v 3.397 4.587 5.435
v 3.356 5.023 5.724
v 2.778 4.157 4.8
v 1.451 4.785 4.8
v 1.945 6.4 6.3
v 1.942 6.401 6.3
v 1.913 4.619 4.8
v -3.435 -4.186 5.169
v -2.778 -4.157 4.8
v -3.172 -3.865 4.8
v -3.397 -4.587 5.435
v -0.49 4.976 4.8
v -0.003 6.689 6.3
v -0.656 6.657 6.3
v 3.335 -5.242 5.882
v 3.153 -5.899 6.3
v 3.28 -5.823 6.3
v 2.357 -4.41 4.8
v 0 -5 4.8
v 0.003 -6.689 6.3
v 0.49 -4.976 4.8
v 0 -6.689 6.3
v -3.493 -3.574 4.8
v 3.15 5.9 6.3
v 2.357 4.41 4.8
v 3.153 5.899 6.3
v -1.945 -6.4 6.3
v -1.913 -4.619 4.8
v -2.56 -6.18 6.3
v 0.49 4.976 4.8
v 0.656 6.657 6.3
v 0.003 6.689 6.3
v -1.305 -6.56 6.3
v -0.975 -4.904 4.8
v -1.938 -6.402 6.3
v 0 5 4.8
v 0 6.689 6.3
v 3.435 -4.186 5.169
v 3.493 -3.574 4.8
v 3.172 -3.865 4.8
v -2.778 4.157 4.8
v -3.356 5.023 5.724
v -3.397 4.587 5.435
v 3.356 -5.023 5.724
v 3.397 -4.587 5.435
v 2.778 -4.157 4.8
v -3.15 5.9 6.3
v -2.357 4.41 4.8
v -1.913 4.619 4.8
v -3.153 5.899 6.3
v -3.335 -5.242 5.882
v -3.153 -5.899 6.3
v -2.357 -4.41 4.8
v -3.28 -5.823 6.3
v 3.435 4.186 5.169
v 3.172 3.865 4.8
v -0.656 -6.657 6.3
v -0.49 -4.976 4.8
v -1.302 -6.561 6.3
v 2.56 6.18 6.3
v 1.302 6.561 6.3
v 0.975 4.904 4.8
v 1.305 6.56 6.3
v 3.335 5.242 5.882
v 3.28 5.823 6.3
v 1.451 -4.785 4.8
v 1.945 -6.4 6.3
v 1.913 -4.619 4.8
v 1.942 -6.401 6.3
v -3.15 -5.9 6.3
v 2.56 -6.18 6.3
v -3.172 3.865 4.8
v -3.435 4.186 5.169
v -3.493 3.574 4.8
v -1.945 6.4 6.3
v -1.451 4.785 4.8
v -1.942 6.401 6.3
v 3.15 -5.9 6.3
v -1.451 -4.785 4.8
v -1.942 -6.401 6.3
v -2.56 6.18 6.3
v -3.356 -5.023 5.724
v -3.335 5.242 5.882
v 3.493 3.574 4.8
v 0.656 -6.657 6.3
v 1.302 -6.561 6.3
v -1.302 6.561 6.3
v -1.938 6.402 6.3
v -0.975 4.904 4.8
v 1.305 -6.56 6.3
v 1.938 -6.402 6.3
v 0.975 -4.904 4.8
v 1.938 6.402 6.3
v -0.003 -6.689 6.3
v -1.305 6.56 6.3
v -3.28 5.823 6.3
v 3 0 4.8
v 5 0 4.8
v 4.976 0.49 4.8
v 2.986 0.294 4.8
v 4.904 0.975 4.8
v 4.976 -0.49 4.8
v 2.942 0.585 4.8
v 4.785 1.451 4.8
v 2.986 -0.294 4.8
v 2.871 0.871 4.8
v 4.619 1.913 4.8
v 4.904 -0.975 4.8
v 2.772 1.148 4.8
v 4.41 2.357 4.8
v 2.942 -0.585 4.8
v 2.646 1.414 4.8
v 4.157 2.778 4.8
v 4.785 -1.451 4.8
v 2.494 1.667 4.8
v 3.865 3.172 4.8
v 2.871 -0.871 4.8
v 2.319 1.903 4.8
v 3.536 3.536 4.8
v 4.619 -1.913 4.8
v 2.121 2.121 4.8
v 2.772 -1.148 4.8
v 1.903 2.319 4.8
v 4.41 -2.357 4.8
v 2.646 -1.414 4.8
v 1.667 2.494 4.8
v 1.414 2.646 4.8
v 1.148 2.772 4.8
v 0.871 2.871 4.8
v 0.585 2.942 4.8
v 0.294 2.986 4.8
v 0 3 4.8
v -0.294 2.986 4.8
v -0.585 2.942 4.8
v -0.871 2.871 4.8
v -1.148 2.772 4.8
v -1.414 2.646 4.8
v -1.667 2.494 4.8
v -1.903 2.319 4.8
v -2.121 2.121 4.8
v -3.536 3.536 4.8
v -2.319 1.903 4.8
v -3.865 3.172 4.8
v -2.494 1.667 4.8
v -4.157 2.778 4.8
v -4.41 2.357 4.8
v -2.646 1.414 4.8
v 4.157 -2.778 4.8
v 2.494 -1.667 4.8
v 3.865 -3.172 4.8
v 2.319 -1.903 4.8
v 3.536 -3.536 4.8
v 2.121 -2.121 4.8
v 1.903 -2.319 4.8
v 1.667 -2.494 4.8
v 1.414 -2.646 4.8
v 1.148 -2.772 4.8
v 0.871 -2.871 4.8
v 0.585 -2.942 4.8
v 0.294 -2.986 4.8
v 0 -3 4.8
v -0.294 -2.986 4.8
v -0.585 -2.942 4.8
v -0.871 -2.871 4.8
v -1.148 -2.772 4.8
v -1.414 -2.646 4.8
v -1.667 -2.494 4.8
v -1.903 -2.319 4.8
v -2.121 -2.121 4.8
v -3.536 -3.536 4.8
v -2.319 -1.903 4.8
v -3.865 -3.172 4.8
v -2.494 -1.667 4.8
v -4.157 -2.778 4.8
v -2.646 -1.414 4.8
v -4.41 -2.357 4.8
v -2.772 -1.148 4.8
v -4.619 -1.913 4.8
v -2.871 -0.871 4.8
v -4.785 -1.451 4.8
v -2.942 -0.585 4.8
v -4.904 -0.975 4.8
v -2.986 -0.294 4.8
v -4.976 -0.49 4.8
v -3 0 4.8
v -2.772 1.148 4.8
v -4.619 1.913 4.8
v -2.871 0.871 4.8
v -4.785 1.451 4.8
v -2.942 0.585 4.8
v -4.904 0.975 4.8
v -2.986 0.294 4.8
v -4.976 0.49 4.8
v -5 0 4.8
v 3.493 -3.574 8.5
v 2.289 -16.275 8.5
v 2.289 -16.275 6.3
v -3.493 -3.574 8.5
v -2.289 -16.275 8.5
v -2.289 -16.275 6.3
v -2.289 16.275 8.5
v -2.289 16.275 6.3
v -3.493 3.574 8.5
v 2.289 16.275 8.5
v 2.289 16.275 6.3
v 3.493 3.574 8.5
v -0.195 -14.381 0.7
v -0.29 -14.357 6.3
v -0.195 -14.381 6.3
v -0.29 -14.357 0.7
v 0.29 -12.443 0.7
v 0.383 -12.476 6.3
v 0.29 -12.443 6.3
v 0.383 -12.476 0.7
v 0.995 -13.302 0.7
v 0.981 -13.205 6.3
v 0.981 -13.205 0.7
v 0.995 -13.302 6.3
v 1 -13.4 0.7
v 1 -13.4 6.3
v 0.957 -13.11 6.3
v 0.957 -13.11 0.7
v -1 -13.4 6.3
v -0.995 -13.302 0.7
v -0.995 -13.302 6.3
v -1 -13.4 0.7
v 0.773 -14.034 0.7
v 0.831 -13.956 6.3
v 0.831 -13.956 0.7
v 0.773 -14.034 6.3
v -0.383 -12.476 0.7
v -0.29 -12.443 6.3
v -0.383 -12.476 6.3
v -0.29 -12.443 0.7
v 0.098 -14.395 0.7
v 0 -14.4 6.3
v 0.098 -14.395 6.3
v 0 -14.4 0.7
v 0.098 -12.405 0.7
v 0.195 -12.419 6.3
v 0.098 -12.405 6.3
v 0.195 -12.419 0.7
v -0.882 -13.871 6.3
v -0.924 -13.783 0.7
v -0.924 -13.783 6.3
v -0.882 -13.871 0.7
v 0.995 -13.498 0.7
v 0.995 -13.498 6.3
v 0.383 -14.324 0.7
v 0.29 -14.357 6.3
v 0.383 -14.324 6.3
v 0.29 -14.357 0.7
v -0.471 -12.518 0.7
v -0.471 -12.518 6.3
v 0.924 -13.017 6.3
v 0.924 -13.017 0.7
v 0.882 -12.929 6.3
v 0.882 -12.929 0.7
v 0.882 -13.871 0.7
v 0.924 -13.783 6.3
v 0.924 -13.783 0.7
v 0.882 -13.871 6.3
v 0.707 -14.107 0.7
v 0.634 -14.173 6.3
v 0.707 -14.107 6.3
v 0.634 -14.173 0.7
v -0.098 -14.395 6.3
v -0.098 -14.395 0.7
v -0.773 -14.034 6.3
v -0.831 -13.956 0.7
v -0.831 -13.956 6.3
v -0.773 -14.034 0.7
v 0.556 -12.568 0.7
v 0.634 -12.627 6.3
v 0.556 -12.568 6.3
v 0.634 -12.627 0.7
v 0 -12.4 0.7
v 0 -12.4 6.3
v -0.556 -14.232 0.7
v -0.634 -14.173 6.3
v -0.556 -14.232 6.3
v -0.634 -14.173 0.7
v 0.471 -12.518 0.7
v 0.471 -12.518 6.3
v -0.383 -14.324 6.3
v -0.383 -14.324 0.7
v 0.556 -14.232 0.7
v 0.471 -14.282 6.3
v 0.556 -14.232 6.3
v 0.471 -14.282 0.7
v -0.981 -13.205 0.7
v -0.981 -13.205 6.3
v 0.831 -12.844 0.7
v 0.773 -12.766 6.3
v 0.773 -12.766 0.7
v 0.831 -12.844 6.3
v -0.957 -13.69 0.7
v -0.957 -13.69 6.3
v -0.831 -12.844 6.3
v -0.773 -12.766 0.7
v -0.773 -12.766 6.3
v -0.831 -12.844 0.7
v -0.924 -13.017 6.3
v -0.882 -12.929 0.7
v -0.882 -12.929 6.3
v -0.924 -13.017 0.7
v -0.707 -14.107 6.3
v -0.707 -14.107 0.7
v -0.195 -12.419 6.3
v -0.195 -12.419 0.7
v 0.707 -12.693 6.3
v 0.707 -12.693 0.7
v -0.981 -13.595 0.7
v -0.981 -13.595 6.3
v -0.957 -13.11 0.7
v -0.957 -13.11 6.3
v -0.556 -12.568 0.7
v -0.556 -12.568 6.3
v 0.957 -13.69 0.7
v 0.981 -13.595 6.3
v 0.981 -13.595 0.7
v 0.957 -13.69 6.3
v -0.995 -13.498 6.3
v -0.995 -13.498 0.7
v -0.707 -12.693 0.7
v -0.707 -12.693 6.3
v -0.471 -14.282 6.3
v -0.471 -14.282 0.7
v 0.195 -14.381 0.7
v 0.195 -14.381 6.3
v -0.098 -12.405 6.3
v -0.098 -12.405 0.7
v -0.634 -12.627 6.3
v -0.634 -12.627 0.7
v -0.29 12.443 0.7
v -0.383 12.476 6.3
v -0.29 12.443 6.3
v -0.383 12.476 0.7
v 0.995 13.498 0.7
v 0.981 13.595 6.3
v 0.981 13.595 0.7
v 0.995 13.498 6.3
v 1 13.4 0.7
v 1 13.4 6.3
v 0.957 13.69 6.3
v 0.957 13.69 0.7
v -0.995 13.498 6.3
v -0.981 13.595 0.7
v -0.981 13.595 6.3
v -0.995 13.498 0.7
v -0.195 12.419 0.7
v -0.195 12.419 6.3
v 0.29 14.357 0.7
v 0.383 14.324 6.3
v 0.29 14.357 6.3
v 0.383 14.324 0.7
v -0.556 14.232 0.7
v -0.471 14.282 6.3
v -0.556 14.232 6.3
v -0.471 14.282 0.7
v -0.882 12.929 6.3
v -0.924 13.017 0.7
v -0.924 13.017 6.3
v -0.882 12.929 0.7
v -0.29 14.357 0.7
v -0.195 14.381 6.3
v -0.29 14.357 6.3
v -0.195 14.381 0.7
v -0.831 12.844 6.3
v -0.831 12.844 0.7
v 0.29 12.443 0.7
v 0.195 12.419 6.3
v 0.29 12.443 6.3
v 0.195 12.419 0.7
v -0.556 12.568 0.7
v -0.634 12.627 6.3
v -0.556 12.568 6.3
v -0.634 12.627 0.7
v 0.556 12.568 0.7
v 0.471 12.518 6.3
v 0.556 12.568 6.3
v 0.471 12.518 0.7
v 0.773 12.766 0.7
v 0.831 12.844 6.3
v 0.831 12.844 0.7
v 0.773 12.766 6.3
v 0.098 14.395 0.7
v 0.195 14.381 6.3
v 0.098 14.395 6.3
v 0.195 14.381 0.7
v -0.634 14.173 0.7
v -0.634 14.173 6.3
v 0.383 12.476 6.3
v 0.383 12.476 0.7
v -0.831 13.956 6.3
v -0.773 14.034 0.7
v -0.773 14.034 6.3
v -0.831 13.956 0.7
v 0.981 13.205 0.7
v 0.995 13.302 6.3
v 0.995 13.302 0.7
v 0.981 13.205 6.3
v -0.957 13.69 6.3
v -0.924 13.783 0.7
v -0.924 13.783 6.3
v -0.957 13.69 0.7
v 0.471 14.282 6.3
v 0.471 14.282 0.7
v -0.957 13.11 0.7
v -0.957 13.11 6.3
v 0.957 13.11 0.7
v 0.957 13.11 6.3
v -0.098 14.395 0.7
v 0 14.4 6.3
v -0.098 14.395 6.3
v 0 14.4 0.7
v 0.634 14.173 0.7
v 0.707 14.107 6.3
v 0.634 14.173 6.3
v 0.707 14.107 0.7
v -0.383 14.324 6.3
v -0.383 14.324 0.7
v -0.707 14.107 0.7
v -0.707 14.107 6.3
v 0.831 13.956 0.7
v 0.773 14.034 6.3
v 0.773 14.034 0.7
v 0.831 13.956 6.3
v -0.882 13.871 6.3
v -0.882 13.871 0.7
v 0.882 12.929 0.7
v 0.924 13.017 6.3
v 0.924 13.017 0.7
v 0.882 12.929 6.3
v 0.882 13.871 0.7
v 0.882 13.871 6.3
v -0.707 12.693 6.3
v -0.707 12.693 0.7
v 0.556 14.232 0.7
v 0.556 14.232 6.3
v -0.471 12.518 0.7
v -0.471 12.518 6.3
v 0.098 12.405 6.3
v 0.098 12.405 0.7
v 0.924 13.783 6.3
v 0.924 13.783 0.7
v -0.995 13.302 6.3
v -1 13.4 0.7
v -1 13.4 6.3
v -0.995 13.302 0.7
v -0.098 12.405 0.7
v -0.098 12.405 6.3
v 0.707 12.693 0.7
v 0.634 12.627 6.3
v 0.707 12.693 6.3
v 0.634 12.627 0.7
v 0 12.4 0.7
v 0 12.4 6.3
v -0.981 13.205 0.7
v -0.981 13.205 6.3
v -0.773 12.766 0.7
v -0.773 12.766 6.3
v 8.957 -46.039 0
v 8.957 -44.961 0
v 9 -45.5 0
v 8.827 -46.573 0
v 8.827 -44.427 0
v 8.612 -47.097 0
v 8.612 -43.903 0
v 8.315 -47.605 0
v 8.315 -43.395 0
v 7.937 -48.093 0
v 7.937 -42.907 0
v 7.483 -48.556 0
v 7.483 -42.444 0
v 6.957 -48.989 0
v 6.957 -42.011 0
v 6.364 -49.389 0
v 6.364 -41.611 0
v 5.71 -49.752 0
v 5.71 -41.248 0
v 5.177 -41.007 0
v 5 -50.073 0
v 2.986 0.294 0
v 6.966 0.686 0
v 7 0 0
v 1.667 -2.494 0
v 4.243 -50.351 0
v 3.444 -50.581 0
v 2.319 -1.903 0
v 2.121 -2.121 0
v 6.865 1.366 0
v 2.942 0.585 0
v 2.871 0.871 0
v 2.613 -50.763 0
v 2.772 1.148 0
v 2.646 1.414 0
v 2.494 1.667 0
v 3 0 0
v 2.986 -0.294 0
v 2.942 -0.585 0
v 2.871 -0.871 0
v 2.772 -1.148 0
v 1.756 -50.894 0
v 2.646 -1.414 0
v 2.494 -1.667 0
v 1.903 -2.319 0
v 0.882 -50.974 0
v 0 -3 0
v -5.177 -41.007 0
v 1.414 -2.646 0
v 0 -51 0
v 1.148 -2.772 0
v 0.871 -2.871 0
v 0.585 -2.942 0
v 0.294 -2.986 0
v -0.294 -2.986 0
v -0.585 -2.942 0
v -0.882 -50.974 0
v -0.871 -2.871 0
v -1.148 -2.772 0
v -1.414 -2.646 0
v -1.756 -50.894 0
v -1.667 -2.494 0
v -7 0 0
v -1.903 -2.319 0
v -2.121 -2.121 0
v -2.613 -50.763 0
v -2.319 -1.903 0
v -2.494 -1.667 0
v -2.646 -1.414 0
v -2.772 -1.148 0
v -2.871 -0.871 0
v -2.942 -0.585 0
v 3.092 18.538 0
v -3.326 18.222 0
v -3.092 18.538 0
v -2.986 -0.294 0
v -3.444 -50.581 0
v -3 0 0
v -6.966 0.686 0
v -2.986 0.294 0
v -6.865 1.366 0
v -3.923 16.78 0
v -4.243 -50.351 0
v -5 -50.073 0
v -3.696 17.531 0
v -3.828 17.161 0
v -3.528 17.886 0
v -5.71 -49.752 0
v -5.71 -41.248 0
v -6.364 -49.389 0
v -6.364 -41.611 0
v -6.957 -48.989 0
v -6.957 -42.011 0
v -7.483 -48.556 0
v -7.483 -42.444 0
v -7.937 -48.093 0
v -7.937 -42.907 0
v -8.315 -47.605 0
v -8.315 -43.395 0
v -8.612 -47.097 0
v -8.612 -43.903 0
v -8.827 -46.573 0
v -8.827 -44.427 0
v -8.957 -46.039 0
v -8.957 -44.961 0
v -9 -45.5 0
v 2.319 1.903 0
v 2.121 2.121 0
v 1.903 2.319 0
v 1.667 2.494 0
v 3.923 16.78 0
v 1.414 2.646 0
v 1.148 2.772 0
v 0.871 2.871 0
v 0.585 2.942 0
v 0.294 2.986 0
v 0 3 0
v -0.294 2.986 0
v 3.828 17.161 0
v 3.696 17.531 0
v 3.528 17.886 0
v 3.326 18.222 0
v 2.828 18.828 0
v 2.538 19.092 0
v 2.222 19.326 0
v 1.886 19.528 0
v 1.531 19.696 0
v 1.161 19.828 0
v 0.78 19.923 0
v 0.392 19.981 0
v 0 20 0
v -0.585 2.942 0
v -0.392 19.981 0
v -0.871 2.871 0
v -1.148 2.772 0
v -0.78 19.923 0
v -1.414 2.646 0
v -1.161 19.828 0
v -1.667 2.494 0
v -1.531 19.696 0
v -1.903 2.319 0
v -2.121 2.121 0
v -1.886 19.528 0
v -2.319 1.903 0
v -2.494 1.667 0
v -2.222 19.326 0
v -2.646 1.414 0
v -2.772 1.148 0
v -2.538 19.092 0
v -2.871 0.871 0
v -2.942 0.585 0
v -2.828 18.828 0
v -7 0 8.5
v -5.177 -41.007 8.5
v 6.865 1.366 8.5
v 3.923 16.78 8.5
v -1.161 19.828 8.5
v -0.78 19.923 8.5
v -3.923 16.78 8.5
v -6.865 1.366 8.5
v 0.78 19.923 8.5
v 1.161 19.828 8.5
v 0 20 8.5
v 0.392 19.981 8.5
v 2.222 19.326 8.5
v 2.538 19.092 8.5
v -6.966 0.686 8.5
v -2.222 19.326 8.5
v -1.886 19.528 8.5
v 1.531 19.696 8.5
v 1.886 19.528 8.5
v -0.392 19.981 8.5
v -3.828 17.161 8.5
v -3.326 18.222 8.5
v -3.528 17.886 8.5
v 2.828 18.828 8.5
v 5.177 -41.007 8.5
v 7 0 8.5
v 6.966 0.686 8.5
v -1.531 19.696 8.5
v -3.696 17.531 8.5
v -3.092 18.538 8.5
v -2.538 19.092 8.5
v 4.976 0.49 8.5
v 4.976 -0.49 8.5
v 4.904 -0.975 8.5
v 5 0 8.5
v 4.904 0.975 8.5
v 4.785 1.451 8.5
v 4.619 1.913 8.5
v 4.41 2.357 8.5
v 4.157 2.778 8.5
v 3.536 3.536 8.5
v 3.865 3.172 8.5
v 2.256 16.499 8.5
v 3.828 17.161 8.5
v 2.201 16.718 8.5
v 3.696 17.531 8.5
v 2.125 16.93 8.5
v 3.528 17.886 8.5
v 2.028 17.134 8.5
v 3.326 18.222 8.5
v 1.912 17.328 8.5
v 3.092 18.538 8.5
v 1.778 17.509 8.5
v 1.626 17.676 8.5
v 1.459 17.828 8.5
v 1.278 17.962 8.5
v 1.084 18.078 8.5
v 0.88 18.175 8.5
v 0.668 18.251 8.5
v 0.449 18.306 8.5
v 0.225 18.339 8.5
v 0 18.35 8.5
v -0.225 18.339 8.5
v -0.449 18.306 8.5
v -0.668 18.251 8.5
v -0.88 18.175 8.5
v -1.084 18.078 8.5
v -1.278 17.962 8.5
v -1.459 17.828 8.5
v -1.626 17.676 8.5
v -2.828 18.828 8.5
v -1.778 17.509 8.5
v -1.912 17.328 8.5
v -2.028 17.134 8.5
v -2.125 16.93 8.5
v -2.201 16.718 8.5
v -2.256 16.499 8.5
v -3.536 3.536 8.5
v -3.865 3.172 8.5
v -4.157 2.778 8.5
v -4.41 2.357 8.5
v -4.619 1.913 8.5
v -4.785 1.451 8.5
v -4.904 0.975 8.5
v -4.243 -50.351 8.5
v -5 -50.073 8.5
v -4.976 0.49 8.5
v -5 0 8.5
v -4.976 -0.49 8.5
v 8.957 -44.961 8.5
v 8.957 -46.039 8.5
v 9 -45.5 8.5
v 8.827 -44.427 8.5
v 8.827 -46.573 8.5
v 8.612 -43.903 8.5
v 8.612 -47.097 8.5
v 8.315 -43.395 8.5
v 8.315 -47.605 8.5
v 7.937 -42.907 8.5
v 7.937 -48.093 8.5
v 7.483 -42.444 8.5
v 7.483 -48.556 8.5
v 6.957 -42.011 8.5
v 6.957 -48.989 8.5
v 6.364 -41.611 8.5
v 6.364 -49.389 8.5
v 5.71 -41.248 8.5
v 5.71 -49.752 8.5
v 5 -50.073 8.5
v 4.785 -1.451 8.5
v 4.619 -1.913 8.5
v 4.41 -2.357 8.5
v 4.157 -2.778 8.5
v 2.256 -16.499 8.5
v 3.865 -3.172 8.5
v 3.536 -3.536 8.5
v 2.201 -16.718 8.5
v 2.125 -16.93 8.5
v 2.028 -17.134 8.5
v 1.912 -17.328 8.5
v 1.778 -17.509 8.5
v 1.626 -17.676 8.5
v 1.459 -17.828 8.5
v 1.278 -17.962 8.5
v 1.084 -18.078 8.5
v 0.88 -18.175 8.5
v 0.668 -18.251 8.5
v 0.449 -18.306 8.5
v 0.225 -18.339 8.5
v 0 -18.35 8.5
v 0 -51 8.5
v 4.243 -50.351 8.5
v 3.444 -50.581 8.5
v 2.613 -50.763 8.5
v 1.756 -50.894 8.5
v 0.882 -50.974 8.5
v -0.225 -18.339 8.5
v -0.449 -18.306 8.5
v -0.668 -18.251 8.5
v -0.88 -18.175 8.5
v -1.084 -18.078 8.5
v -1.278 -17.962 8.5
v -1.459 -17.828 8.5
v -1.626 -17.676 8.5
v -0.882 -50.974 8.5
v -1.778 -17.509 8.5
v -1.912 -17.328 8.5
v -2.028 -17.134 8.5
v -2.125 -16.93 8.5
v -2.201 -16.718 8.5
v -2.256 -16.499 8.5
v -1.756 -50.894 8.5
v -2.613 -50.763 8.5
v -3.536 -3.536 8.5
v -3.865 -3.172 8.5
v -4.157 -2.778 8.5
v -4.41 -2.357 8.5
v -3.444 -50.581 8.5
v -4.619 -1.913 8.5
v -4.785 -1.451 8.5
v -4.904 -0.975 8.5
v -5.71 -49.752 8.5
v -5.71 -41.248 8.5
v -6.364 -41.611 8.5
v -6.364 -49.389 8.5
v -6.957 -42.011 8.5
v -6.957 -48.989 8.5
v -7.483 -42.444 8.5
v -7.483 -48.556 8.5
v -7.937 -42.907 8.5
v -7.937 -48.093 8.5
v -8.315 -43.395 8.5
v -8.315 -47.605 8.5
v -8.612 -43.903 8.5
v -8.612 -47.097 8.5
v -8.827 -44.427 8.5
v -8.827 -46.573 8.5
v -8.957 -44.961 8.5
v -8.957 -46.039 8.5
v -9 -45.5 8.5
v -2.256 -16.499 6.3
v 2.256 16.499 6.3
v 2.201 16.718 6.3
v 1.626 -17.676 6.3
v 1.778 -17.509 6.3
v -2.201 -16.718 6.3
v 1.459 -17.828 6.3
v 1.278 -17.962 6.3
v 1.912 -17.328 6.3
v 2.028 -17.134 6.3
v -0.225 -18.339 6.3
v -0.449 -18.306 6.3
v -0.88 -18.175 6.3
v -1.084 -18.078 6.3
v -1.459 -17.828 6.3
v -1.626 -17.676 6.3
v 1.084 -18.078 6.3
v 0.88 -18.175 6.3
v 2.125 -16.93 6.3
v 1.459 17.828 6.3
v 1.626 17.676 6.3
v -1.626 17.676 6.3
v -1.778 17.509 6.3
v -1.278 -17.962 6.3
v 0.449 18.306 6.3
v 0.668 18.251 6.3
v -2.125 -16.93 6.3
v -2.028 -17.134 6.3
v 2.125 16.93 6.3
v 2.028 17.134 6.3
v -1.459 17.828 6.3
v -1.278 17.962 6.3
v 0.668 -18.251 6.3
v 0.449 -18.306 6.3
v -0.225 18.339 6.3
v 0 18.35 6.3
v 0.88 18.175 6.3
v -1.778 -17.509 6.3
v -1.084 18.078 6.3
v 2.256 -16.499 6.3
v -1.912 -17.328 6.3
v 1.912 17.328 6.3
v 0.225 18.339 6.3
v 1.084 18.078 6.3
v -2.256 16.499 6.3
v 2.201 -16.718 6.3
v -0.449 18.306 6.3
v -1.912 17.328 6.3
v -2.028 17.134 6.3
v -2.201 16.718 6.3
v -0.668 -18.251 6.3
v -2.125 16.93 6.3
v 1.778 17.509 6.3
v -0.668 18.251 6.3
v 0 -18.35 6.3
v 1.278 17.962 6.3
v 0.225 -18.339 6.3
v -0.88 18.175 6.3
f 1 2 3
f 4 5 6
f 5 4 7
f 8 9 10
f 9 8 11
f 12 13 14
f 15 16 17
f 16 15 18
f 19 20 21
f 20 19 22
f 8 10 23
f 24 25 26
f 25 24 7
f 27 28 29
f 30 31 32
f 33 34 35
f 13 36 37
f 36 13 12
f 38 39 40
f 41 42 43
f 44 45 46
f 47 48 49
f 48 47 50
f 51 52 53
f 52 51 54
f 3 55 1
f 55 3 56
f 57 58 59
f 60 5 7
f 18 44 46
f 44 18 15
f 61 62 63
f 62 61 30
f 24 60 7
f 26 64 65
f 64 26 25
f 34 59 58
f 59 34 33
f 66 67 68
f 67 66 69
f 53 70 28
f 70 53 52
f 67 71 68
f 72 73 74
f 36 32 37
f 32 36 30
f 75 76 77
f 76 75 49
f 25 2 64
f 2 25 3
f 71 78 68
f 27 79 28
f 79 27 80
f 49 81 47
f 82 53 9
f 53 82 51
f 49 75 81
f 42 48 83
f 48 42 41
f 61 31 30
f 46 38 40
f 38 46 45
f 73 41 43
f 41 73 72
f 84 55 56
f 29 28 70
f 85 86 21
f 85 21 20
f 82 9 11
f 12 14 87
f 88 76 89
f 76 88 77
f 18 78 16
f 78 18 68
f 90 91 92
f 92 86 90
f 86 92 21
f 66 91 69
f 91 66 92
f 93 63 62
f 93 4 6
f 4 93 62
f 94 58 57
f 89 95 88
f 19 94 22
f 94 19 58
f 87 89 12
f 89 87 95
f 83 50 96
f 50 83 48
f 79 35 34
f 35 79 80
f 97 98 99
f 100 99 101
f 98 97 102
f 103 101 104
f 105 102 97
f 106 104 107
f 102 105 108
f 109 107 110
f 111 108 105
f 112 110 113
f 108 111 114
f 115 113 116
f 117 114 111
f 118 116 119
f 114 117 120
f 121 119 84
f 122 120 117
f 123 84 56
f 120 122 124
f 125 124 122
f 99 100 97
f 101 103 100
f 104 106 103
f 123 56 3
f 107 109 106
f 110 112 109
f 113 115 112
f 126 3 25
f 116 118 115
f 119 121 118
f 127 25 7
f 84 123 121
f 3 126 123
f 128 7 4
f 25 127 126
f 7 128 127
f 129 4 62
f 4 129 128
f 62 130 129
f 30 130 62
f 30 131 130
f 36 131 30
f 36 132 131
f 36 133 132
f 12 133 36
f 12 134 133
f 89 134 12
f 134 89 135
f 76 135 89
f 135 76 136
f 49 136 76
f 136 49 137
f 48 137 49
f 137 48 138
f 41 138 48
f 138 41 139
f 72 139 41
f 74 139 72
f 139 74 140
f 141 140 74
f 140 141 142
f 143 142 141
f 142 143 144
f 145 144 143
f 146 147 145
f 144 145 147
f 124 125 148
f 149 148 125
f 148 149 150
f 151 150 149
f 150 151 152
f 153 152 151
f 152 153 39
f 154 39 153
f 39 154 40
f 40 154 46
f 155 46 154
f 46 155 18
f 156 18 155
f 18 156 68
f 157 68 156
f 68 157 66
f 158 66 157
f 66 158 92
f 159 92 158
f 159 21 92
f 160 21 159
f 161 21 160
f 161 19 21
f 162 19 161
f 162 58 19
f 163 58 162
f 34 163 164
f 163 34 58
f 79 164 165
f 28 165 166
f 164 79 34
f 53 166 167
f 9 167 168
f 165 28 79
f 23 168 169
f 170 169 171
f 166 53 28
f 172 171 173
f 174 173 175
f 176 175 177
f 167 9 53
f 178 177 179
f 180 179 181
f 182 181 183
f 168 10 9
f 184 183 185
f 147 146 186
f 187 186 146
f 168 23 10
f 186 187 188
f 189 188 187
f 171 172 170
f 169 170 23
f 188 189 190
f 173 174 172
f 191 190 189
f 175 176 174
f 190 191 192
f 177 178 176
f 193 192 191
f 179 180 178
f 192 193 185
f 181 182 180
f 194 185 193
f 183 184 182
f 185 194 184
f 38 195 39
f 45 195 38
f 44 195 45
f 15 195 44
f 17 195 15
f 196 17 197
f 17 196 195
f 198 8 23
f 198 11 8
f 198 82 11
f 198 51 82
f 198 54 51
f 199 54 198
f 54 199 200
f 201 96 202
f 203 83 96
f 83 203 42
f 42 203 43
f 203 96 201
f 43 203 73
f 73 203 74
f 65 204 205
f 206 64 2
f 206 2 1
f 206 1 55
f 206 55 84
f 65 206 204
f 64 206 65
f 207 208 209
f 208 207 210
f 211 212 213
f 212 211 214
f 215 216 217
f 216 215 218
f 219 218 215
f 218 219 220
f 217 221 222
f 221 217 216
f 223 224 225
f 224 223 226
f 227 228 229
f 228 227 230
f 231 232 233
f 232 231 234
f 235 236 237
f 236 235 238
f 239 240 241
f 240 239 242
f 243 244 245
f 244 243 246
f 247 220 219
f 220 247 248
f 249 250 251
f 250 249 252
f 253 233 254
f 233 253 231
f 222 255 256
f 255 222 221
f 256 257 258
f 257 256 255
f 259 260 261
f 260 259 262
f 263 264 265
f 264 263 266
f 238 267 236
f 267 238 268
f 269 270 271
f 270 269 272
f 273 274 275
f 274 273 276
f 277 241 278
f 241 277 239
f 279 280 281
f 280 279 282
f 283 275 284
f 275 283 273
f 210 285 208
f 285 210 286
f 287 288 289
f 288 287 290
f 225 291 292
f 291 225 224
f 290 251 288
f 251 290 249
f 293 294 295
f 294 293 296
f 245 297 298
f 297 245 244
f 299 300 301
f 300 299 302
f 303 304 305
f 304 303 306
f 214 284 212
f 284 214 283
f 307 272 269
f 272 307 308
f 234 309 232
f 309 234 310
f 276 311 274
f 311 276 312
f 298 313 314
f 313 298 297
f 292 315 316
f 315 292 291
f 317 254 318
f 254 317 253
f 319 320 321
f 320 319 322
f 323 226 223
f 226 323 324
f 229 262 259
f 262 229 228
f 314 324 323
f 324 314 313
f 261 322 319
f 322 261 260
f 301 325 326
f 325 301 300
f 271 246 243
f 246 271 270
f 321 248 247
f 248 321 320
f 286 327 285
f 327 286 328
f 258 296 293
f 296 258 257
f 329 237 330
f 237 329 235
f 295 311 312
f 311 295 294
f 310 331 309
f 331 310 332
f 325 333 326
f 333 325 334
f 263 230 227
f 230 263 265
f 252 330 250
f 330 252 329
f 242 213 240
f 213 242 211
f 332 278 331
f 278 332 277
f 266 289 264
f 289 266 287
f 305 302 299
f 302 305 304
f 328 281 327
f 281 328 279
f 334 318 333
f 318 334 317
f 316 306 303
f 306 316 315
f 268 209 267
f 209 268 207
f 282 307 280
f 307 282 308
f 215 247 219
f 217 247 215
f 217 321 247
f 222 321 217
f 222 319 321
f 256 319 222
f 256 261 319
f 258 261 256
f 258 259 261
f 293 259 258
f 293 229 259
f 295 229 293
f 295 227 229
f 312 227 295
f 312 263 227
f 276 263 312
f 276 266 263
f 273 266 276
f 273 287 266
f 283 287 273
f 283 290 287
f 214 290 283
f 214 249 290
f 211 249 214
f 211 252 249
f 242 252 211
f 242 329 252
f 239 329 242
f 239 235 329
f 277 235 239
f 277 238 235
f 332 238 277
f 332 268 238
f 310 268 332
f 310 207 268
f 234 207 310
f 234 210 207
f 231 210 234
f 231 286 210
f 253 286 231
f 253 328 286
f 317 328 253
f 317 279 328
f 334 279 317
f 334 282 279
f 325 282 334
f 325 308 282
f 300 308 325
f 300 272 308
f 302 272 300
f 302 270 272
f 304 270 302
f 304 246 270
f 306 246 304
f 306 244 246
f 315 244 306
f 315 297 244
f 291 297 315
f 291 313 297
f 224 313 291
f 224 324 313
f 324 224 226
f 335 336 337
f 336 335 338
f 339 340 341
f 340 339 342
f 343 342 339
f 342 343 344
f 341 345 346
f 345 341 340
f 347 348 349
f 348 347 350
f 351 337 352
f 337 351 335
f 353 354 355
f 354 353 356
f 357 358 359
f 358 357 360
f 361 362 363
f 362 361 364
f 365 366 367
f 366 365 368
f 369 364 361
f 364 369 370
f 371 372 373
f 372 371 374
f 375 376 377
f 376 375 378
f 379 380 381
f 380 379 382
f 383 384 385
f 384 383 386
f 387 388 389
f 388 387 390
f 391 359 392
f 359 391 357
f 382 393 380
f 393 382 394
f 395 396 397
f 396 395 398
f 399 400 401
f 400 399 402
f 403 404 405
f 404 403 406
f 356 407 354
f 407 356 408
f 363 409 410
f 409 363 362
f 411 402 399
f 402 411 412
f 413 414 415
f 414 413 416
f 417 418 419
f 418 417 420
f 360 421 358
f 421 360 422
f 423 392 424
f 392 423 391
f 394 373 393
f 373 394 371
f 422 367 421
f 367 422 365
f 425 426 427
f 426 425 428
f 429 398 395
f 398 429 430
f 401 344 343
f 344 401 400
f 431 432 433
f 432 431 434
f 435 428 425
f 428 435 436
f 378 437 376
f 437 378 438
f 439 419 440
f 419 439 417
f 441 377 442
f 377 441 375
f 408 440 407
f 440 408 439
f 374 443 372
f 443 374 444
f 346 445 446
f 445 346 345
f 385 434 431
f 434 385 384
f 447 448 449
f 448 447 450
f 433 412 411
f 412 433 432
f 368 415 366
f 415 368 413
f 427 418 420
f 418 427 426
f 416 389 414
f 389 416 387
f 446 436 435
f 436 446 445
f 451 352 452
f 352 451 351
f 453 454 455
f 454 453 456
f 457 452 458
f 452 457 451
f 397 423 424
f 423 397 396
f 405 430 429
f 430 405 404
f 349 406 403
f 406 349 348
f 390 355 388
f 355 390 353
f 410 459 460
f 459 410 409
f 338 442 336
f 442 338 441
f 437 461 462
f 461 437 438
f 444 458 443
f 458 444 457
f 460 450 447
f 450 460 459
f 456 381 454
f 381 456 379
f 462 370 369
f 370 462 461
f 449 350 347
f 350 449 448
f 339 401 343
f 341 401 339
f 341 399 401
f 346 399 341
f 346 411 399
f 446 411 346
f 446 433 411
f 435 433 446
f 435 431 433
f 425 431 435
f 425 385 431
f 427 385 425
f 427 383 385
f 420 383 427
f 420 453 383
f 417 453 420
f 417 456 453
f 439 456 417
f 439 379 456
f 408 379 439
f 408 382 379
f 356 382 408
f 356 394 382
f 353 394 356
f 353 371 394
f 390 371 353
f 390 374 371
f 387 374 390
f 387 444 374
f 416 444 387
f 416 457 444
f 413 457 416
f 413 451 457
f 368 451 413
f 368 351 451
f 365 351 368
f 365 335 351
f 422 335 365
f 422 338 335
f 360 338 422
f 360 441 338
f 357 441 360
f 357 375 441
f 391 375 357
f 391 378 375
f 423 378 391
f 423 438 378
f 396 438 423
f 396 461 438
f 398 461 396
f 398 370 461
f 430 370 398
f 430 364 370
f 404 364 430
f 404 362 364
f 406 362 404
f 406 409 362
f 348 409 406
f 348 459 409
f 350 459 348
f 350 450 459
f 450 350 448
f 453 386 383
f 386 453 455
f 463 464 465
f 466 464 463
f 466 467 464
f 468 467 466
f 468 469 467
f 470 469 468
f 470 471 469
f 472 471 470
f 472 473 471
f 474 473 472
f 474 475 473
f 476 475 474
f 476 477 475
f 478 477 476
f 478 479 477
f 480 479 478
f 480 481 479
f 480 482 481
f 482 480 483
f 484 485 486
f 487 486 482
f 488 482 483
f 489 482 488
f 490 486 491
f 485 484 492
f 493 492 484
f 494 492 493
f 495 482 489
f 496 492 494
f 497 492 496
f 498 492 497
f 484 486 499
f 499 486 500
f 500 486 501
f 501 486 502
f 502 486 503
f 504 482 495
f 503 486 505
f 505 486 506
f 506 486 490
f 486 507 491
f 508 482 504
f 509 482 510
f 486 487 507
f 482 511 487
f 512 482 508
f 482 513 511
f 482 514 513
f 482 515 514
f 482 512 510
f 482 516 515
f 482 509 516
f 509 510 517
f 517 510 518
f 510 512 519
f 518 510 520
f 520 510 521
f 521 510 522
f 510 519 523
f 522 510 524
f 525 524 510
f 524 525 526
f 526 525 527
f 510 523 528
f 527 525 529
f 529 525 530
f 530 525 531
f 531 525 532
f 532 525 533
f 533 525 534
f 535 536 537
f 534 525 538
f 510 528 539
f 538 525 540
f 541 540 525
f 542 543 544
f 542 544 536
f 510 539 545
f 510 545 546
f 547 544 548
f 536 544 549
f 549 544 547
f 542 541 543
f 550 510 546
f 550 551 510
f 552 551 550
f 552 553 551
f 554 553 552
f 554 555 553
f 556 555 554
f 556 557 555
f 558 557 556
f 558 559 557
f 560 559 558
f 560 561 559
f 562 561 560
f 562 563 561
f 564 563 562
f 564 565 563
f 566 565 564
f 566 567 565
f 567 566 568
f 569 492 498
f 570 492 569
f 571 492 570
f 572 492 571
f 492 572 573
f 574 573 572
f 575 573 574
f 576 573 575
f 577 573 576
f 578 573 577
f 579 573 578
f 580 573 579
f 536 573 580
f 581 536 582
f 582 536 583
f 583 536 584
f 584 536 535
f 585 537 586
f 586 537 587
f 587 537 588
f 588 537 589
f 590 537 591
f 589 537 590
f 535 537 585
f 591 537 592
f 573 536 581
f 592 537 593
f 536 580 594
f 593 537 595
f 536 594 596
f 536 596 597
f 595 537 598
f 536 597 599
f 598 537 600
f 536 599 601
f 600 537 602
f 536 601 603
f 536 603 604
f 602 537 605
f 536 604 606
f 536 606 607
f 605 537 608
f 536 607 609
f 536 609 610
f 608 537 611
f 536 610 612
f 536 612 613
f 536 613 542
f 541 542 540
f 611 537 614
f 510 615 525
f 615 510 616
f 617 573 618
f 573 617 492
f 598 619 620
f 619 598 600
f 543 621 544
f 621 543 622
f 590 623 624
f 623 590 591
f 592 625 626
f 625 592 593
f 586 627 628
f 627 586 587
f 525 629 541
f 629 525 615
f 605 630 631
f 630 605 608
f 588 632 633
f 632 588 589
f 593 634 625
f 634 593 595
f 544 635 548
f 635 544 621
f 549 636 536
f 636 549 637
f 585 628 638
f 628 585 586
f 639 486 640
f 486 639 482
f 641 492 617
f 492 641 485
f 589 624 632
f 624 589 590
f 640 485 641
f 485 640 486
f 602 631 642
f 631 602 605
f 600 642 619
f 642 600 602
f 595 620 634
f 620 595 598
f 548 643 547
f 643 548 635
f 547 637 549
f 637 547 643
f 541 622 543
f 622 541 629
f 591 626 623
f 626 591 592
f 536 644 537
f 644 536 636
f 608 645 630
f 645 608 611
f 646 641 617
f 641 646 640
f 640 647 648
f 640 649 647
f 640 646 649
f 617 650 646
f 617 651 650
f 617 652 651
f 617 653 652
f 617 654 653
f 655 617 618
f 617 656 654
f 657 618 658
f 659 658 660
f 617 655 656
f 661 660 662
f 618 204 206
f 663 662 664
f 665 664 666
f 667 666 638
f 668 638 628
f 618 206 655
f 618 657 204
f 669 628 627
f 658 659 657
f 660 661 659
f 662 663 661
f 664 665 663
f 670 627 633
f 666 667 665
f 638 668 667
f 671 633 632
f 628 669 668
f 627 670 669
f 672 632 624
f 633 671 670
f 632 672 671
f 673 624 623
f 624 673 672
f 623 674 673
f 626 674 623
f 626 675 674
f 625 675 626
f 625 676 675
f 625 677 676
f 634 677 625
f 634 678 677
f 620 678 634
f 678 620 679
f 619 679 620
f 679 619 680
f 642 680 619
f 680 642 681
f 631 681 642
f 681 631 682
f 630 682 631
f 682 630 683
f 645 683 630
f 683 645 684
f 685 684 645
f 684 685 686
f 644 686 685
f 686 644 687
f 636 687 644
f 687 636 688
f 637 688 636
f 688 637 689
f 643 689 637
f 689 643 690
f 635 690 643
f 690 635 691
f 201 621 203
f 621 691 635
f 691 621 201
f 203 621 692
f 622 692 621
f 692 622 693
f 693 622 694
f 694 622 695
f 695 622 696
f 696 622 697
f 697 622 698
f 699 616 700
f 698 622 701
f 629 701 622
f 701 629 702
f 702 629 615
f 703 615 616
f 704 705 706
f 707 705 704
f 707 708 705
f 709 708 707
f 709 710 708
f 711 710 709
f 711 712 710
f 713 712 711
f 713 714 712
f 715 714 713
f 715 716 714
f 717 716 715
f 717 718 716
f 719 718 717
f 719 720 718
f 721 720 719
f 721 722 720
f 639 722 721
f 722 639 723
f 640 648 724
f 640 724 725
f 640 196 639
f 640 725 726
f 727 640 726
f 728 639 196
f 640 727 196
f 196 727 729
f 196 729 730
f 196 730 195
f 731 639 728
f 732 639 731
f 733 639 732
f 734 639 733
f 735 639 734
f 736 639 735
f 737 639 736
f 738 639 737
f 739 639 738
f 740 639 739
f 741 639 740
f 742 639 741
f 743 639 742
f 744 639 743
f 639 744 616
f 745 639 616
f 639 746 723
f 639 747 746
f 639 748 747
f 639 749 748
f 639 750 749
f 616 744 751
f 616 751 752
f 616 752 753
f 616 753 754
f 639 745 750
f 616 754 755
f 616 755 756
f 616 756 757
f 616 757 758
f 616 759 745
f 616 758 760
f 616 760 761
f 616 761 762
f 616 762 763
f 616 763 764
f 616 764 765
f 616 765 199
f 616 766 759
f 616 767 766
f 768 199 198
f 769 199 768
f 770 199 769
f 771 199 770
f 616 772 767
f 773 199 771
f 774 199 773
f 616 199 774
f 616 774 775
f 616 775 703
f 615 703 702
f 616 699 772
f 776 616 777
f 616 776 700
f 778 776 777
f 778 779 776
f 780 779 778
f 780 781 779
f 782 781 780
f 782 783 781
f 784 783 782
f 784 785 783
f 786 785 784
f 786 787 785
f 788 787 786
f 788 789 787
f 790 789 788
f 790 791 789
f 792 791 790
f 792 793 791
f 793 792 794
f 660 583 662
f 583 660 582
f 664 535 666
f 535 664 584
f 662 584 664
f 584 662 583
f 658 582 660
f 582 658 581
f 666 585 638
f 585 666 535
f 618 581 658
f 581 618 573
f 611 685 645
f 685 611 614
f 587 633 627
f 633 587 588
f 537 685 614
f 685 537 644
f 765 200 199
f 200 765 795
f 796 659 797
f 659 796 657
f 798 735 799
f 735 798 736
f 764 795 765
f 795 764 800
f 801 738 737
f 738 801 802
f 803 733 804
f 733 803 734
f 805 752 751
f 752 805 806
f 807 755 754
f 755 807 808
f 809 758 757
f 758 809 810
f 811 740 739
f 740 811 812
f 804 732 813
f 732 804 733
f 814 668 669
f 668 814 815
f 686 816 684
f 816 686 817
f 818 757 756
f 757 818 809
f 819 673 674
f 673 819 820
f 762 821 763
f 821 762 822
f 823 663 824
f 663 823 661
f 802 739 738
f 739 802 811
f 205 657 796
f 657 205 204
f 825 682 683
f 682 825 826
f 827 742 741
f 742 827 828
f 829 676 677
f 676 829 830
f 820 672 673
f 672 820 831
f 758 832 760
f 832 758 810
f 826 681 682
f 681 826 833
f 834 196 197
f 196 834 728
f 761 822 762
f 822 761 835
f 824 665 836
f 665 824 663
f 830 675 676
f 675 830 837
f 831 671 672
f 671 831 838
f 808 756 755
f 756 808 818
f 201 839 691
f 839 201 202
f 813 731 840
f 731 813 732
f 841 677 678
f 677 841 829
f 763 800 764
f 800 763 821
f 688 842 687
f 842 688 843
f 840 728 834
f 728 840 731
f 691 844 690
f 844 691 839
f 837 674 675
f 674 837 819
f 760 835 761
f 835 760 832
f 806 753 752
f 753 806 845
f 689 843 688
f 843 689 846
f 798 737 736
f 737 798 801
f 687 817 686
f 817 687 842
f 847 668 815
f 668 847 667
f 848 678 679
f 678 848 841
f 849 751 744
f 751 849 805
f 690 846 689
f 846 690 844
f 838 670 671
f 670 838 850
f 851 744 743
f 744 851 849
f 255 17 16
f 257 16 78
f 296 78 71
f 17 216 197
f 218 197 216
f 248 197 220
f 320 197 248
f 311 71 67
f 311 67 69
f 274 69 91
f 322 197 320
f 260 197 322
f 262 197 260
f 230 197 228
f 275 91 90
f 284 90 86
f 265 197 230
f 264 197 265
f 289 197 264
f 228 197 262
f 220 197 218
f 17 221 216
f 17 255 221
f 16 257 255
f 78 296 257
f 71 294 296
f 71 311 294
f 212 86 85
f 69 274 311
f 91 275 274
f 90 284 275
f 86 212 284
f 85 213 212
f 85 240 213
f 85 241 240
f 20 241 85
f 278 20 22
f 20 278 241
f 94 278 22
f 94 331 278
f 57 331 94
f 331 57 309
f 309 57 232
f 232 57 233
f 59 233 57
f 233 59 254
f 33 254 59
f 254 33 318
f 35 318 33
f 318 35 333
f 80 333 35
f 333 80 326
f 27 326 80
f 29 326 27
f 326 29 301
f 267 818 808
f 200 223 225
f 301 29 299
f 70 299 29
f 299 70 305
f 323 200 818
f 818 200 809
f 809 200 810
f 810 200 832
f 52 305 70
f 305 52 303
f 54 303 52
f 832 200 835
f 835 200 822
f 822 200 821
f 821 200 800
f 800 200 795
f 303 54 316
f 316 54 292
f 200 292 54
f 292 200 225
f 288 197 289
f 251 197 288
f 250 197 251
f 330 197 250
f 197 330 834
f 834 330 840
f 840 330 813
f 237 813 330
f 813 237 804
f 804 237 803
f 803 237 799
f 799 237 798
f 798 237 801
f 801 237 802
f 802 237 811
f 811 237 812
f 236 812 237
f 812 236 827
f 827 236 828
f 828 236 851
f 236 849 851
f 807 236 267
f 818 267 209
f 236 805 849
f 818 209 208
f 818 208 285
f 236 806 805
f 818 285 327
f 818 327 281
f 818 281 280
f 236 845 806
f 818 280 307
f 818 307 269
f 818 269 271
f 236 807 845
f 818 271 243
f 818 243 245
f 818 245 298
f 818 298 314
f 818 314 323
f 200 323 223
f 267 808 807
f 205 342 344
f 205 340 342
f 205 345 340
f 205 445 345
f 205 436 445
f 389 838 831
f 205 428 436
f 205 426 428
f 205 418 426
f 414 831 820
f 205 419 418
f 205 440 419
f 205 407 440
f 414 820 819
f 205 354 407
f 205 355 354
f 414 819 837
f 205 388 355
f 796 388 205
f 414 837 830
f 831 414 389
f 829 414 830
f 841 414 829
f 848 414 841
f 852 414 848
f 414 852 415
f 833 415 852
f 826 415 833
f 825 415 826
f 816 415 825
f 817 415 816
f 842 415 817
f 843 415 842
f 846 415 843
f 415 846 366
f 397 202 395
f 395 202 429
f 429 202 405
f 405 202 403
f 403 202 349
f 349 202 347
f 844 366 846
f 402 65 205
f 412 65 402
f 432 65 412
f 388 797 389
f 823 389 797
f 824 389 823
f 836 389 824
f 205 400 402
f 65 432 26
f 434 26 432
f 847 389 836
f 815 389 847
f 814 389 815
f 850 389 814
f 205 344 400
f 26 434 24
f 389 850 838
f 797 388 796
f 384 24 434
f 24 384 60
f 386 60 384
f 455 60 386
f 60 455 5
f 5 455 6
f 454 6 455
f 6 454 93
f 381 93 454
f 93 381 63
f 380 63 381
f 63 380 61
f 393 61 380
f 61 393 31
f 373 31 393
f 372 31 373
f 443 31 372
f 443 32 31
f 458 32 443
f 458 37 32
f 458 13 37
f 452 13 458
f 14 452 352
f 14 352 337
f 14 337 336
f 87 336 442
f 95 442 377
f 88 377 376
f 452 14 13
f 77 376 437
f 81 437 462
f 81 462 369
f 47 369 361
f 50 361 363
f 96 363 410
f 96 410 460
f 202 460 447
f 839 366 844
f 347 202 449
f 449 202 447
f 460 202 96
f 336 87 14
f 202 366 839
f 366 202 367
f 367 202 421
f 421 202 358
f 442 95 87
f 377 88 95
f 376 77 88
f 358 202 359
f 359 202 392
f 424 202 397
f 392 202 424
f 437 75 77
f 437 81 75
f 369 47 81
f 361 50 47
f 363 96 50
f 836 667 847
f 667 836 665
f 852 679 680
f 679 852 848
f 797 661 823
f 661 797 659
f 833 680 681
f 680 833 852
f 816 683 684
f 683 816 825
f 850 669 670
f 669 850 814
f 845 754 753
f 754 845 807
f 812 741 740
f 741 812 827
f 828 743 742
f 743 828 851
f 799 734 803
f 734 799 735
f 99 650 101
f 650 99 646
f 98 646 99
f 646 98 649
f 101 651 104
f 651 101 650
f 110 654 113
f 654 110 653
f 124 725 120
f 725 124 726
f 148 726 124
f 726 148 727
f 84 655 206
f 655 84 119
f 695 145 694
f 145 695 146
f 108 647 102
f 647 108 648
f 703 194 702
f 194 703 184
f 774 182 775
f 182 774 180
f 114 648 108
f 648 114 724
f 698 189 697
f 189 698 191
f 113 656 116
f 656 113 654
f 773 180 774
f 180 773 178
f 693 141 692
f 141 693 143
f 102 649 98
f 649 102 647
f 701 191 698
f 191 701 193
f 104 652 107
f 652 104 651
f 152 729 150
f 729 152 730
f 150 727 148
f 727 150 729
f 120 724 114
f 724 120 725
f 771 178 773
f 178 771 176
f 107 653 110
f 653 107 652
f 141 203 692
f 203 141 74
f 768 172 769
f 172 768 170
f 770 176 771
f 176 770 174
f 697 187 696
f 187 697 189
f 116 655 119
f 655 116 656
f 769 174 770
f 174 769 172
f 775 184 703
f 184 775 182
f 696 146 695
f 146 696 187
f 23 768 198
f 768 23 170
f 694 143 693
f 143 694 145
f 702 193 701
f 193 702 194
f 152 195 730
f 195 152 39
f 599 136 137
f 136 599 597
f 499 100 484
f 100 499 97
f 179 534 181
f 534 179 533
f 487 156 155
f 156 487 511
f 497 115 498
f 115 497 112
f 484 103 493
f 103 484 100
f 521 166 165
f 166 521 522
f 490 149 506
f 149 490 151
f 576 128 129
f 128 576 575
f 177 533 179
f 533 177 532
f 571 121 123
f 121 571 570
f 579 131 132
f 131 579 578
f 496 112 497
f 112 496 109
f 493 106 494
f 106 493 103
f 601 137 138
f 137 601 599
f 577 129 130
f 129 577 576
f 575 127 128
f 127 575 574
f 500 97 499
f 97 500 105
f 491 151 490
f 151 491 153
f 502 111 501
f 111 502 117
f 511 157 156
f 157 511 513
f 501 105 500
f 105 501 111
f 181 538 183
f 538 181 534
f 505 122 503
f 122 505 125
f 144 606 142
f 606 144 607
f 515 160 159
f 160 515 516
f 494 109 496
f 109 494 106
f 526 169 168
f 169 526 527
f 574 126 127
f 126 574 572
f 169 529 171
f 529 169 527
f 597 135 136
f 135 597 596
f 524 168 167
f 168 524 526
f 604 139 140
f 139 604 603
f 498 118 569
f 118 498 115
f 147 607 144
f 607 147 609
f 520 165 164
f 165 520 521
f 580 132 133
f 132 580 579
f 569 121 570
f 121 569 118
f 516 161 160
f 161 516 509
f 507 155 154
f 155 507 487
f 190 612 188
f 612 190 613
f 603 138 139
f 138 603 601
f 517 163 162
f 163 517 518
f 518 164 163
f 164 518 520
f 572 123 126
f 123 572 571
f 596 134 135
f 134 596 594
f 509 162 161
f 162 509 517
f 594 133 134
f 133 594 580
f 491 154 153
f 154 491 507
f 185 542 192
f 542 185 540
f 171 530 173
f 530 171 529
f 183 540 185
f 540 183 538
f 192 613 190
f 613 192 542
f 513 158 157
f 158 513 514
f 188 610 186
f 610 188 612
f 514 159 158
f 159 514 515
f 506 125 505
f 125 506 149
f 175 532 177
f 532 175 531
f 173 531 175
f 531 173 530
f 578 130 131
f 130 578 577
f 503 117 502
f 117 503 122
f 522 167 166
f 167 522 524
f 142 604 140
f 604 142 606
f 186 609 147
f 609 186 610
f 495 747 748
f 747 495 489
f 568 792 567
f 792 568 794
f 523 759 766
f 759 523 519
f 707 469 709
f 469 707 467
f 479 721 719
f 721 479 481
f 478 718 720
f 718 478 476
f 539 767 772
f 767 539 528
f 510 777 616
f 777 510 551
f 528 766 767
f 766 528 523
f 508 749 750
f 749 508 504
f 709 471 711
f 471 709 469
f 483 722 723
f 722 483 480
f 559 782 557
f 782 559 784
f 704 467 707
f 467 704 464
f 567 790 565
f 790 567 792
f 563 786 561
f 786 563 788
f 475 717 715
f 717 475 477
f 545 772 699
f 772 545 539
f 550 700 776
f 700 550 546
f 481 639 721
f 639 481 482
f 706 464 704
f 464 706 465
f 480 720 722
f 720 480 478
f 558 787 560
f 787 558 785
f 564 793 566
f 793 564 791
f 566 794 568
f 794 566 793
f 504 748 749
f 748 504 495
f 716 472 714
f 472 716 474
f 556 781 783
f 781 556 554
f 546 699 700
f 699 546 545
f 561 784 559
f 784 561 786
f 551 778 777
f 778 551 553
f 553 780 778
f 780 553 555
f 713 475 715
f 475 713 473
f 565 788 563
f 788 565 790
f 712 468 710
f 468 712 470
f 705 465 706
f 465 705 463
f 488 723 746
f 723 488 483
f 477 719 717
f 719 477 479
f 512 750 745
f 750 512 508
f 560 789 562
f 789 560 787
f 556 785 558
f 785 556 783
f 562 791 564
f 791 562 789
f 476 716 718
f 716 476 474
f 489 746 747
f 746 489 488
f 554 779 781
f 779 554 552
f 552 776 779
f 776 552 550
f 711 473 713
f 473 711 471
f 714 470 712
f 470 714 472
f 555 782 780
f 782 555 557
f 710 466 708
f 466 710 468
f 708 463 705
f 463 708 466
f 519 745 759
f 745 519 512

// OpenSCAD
// file: leg-v6.scad
// Leg V6: uses only the screws from the servo bag (owner's discovery, 2026-11-27).
//   Large pointed screws (2): about 2.2 thread x 7 shank, flanged head about 4.7 dia x 1.6.
//     They go UP through the horn's 4th arm holes (from the motor side) into pilot holes in this leg.
//   Small screw (1): about 2.0 thread x 3.5 shank, head about 2.8. It holds the horn on the motor
//     shaft; a screwdriver reaches it through the big centre hole.
//   Screw sizes measured from grid-sheet photos, about +/-0.3mm.
// Clearances from Leg V4 (V3 printed too tight). Owner printed V3 (2026-11-27): horn and screws too tight.
// V3 layout: deeper disc recess plus sloped room for the ramps. Shaped around the owner's measured double-arm horn. Units mm. OpenSCAD 2021.01.
// Horn measured 2026-11-27 from grid-sheet photos (about +/-0.2mm), not calipers:
//   overall length 35.7, hub boss 7.2 dia x 2.0 tall (spline side),
//   screw-side bump (Andrew spotted this, photos 2026-11-27): a straight-sided disc,
//   about 8.0-8.7 dia x 1.1 tall, PLUS small ramps where it meets the arm. The ramps
//   rise from the arm face up to the disc top, so from the side the bump looks sloped.
//   Owner's printed gauge: arm 2.0 thick, spline boss 7.5.
//   arm 2.0 thick,
//   arm 6.0 wide beside the hub tapering to 3.6 at the rounded tip,
//   arm holes about 1.4 dia at 5.9, 8.4, 10.9, 13.4, 15.9 from centre.
// The horn stays as mounted on the servo: tall spline boss DOWN onto the motor, disc with ramps UP into this leg pocket. The leg sits on top like a lid.
// Order: horn into leg, 2 large screws, push onto shaft, small centre screw.
// Print pocket side UP. No supports.
$fn=64;

horn_len=35.7; arm_t=2.0; arm_w_hub=6.0; arm_w_tip=3.6; hub_x=3.5;
disc_d=8.7; bump_h=1.1;   // largest measured disc; height from the side photo
rc_d=disc_d+1.3;           // straight recess for the disc
rc_h=bump_h+0.4;           // a little deeper than the disc
ramp_d=13.4;               // ramp clearance: widens to this at the arm face, only inside the arm pocket
pilot_r=13.4;     // 4th hole from the centre, both arms
access_d=6.0;      // screwdriver + small screw head
pilot_d=2.0;       // for the 2.2mm self-tapping screws; this printer prints holes small
pilot_depth=5.6;   // 7mm shank minus 2mm horn, plus a little
clr=1.0;          // total extra width/length in the pocket (0.5 each side; V3 had 0.2 and was too tight)

leg_t=8.5; hip_d=14; foot_d=10; leg_len=45; tail_d=8; tail_len=16;
pocket=arm_t+0.2;             // arm sits just below the leg face
recess=pocket+rc_h;           // total depth to the bottom of the sloped recess
floor_t=leg_t-recess;         // plastic under the hub that the screw clamps
tip_c=horn_len/2-arm_w_tip/2;

module leg_outline() {
  hull() { circle(d=hip_d); translate([0,-leg_len]) circle(d=foot_d); }
  hull() { circle(d=hip_d); translate([0,tail_len]) circle(d=tail_d); }
}
module arm_outline() {
  hull() for(s=[-1,1]) {
    translate([0,s*hub_x]) square([arm_w_hub+clr,.01],center=true);
    translate([0,s*tip_c]) circle(d=arm_w_tip+clr);
  }
}
module leg() {
  difference() {
    linear_extrude(leg_t) leg_outline();
    translate([0,0,leg_t-pocket]) linear_extrude(pocket+.1) arm_outline();
    translate([0,0,leg_t-recess]) cylinder(d=rc_d,h=recess+.1);                 // straight-sided disc recess
    intersection() {                                                             // sloped room for the ramps
      translate([0,0,leg_t-recess]) cylinder(d1=rc_d,d2=ramp_d,h=rc_h+.01);
      translate([0,0,leg_t-recess-.1]) linear_extrude(rc_h+.2) arm_outline();
    }
    translate([0,0,-.1]) cylinder(d=access_d,h=leg_t+.2);         // reach the small centre screw
    for(s=[-1,1]) translate([0,s*pilot_r,leg_t-pocket-pilot_depth]) cylinder(d=pilot_d,h=pilot_depth+.1); // large servo-bag screws
    translate([-2,-leg_len-foot_d/2-1,-.1]) cube([4,4,0.7]);      // toe mark on the bed face
  }
}
leg();

assert(floor_t>=2,"Plastic under the hub for the clamp screw");
assert(tail_len+tail_d/2-(horn_len+clr)/2>=1.5,"Wall beyond the upper horn tip");
assert((hip_d-rc_d)/2>=1.6,"Side wall around the hub recess");
assert(leg_t-pocket-pilot_depth>=0.6,"Pilot holes stay blind: screw tips do not poke out");
// main file
// Leg V7: Leg V6 with a round paw at the foot (puppy look). The hip end is IDENTICAL to
// Leg V6 (owner: perfect fit, 2026-11-27); only the foot is wider. Print pocket side UP, no supports.
use <leg-v6.scad>
$fn=64;
leg_t=8.5; leg_len=45; paw=[18,11];
module paw2d() { translate([0,-leg_len]) hull() { circle(d=10); translate([0,-0.5]) scale([1,paw[1]/paw[0]]) circle(d=paw[0]); } }
leg();
linear_extrude(leg_t) paw2d();
